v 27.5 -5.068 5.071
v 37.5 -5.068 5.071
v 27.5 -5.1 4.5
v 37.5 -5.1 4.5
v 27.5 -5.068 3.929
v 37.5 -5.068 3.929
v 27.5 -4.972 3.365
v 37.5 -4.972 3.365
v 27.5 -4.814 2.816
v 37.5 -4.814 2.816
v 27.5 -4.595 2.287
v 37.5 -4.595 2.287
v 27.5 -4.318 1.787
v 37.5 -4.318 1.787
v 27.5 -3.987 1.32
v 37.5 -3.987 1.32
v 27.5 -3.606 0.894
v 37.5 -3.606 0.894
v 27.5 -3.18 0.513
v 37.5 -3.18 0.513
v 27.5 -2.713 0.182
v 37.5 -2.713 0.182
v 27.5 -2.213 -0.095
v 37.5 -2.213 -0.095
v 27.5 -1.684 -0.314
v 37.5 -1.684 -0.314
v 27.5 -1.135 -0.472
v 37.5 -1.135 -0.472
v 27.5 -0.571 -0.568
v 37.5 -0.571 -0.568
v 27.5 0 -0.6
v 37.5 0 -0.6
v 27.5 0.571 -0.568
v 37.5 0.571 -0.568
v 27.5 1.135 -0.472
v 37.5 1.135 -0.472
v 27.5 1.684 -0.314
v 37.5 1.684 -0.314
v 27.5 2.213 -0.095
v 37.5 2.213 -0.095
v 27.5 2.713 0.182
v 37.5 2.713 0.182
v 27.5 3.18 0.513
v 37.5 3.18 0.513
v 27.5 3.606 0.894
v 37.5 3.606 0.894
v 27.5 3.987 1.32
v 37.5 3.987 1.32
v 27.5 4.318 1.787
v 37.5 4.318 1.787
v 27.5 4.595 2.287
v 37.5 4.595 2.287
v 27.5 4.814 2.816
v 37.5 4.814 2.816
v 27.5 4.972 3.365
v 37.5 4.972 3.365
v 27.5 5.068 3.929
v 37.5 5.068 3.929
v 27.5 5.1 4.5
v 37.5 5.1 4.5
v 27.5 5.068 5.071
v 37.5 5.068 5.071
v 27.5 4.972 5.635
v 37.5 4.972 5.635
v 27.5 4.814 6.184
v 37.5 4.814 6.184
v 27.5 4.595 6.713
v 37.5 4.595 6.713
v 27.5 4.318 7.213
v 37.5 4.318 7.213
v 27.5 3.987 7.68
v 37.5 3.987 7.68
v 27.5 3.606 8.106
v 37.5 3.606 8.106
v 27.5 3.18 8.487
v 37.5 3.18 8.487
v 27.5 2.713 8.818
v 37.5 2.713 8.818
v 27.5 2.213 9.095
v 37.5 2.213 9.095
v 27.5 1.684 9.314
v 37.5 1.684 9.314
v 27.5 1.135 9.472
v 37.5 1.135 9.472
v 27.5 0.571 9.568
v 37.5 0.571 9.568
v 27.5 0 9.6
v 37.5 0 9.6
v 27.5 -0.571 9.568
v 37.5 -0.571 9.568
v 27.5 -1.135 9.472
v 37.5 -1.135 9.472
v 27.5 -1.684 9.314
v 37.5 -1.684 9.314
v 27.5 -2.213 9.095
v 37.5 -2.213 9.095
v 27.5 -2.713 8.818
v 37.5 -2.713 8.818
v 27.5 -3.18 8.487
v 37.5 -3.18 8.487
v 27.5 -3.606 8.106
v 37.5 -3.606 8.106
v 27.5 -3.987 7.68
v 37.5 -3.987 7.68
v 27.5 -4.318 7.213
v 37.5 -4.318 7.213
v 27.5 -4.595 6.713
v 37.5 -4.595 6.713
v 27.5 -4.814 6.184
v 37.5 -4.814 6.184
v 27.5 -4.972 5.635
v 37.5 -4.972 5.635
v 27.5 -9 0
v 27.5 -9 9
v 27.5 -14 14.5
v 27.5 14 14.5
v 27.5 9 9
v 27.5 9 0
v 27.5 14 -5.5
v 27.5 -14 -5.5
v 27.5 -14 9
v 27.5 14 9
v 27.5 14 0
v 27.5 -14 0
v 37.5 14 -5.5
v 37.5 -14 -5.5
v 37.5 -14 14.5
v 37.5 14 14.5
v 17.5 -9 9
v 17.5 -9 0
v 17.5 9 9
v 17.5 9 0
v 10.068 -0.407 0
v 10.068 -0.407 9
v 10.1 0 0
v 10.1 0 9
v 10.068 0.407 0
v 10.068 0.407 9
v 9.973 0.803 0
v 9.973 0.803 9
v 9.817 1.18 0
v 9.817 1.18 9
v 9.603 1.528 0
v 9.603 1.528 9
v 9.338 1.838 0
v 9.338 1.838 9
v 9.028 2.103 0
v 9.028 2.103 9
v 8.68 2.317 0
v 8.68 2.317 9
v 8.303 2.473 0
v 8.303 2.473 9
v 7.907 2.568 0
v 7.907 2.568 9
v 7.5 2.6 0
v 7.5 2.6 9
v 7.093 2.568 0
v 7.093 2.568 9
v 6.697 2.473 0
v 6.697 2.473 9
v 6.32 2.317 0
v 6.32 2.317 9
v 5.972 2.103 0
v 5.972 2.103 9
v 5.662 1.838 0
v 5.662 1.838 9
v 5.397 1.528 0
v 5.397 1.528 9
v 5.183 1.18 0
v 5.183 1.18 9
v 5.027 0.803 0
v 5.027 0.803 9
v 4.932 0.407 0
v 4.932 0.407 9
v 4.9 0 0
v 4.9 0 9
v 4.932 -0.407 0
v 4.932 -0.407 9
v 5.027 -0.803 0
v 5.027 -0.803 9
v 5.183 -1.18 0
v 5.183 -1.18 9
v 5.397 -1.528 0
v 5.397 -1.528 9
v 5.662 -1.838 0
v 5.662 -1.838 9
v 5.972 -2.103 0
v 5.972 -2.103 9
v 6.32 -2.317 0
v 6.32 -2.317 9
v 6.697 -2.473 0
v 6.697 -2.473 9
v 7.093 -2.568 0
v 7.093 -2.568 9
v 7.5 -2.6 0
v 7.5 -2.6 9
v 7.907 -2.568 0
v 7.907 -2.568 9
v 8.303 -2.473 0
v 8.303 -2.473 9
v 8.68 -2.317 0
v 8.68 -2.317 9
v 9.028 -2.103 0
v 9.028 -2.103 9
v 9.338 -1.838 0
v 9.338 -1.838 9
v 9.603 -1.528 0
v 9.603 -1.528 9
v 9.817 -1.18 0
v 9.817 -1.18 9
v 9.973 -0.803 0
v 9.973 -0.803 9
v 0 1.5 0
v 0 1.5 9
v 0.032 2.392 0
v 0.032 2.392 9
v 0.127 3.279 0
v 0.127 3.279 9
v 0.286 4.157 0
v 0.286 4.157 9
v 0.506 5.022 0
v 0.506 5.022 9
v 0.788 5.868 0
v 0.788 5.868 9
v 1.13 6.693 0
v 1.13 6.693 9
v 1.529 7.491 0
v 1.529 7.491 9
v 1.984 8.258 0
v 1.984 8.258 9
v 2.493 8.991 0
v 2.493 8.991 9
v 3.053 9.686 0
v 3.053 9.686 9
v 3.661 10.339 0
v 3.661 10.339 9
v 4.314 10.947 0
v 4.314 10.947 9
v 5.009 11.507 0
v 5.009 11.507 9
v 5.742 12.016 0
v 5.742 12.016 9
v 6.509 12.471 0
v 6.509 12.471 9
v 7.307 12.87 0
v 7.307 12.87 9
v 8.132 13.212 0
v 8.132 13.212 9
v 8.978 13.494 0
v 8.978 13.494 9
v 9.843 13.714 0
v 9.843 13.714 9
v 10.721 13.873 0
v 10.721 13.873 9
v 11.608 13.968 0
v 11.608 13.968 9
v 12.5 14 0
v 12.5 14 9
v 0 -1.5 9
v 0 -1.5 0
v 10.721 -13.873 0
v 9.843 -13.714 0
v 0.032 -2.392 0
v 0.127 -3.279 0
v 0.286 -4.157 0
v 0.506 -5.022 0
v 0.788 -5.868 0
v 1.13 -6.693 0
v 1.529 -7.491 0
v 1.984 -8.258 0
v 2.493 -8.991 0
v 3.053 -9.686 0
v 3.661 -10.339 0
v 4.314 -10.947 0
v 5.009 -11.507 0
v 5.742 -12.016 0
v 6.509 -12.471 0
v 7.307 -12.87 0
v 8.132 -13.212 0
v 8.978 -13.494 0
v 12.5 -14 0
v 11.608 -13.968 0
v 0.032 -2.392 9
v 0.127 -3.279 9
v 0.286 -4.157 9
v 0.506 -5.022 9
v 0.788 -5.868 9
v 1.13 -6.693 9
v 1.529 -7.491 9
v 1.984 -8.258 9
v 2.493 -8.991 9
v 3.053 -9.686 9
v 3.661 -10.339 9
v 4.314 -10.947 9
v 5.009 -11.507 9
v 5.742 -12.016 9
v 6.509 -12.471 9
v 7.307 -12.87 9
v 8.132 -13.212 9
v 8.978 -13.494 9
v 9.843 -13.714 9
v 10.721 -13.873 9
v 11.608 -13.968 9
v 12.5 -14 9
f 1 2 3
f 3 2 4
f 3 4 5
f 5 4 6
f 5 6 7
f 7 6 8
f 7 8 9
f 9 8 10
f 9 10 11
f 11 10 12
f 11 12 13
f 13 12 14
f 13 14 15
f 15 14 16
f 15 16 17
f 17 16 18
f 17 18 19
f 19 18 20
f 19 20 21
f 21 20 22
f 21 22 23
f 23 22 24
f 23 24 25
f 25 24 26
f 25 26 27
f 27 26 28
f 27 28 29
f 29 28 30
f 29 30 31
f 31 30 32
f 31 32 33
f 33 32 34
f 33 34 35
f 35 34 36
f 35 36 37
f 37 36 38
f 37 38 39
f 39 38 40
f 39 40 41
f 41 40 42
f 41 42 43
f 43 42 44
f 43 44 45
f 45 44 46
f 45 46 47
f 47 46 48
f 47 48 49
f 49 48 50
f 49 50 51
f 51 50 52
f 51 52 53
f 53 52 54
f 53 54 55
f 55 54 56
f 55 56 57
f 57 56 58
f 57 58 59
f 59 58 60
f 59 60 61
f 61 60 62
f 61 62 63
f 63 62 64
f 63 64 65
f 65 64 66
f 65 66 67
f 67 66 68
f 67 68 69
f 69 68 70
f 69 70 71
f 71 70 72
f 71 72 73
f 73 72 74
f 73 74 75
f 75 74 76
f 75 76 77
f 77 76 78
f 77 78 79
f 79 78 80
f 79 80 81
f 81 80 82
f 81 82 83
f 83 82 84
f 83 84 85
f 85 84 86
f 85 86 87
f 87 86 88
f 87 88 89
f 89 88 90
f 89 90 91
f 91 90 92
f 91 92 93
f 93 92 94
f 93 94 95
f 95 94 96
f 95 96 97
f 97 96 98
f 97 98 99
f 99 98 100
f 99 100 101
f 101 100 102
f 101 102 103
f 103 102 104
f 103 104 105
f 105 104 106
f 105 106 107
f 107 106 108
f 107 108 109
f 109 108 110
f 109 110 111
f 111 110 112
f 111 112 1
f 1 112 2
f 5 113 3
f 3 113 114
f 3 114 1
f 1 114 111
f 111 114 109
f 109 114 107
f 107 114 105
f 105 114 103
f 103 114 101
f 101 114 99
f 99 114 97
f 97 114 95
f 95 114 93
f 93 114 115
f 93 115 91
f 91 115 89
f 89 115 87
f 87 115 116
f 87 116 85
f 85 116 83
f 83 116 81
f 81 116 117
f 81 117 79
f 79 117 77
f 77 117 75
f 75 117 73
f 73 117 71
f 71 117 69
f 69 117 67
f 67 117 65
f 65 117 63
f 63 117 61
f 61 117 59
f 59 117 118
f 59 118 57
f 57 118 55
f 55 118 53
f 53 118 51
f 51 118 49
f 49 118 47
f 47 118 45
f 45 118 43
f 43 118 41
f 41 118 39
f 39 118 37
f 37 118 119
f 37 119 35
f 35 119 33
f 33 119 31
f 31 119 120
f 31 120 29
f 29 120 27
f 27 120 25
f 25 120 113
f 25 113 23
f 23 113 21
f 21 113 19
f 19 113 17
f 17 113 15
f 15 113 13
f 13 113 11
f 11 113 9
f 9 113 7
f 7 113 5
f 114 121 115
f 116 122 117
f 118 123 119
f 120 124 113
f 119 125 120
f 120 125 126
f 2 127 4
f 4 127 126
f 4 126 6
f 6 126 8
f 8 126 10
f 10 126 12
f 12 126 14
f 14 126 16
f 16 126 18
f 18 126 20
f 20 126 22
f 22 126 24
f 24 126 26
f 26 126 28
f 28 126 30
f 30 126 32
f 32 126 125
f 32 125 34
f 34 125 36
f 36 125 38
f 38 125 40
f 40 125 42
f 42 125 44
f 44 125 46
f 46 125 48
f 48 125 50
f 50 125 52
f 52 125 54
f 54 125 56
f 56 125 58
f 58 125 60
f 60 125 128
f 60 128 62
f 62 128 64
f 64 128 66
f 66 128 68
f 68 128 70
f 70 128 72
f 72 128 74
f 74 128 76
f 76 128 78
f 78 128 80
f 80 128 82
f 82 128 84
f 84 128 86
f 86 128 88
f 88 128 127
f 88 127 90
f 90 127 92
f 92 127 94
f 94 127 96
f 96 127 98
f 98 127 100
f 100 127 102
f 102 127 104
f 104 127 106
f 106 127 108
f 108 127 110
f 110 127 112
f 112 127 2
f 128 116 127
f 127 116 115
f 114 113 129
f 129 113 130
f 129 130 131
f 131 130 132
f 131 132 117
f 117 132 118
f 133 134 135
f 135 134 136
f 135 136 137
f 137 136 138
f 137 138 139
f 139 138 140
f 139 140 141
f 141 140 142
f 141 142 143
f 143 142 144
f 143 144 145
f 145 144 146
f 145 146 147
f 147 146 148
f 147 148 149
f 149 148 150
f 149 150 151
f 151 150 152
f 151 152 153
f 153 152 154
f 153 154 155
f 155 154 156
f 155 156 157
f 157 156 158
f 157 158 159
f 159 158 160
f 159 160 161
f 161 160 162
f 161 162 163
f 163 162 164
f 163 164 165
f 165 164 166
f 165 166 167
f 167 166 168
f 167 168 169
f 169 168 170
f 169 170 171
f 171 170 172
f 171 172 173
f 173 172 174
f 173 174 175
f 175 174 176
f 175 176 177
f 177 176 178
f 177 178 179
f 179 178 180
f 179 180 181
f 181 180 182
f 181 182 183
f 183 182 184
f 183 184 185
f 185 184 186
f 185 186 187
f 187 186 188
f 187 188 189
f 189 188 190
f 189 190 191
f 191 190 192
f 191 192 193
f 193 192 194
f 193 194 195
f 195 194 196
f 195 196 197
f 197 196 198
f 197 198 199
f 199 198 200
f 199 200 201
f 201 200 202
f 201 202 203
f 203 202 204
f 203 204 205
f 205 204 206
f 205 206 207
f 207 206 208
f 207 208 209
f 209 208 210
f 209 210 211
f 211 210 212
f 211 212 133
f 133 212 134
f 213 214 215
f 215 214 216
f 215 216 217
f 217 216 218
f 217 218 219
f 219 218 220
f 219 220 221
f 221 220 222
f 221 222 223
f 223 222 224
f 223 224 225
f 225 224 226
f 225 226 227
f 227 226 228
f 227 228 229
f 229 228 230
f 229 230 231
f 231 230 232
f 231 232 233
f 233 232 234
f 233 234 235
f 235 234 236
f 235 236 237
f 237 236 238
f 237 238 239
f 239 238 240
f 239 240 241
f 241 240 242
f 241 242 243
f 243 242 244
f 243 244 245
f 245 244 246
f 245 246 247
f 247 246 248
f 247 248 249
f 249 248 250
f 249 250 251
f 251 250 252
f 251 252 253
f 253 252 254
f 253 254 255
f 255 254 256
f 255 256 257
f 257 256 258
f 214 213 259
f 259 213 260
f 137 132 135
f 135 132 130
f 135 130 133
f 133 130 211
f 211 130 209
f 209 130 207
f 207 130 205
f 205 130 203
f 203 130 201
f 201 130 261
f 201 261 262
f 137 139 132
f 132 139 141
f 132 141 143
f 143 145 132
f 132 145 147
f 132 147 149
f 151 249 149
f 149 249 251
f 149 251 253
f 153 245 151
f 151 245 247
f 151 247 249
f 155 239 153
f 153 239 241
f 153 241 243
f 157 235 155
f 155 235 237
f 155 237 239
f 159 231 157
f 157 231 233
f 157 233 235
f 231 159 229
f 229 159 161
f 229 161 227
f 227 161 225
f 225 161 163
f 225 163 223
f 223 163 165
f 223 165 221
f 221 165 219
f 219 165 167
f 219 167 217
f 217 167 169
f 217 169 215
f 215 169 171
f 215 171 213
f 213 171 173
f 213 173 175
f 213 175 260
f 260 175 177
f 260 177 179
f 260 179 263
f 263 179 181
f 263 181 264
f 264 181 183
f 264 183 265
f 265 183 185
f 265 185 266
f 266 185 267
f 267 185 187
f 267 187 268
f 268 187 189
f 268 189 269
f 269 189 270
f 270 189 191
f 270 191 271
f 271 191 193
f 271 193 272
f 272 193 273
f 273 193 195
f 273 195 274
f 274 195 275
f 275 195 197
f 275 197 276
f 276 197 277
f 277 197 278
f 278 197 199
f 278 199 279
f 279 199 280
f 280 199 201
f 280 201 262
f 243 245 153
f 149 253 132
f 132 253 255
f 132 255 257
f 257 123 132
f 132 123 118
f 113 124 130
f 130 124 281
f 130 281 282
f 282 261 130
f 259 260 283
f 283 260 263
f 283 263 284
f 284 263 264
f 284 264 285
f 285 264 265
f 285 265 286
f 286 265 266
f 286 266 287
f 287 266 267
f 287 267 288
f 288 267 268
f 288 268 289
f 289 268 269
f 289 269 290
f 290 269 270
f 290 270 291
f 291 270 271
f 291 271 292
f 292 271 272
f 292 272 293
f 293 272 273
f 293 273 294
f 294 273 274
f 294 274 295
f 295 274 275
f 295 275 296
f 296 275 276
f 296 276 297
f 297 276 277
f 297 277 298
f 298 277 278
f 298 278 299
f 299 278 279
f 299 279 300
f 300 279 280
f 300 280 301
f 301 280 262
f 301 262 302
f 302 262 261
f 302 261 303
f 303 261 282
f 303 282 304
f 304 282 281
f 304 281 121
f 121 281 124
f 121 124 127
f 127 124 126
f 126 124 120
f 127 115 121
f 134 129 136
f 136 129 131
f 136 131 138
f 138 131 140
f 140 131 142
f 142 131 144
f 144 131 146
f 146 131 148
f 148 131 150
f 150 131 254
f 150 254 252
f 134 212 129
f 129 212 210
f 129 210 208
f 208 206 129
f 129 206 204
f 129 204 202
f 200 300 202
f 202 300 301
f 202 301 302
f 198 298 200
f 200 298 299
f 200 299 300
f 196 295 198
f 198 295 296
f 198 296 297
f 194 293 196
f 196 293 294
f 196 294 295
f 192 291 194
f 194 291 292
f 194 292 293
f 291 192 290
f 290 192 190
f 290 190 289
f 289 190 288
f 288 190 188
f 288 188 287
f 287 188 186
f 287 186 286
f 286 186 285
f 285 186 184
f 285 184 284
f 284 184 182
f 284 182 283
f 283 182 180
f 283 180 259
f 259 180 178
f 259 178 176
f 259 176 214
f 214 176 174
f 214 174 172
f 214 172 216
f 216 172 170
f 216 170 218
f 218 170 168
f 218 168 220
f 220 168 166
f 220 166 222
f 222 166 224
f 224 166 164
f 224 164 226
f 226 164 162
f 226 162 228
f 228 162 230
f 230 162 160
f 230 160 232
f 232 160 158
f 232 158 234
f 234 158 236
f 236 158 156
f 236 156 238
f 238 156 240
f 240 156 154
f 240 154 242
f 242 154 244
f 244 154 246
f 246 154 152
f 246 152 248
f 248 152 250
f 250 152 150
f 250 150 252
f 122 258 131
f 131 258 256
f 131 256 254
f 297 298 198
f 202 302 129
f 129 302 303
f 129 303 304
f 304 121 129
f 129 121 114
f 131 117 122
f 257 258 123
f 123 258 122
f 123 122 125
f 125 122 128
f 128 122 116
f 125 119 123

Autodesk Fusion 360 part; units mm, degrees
sketch "Sketch1" plane through (0, 0, 0) normal (0, 1, 0) x (1, 0, 0)
  line L0 (0, 0) -> (15, 0)
  line L1 (15, 0) -> (15, -9)
  line L2 (15, -9) -> (0, -9)
  line L3 (0, -9) -> (0, 0)
  line L4 (15, -9) -> (17.5, -9)
  line L5 (17.5, 0) -> (15, 0)
  line L6 (17.5, -9) -> (17.5, 0)
  line L7 (17.5, -9) -> (27.5, -9)
  line L8 (27.5, -9) -> (27.5, -14.5)
  line L9 (27.5, -14.5) -> (37.5, -14.5)
  line L10 (37.5, -14.5) -> (37.5, 5.5)
  line L11 (37.5, 5.5) -> (27.5, 5.5)
  line L12 (27.5, 5.5) -> (27.5, 0)
  line L13 (27.5, 0) -> (17.5, 0)
  line L14 (27.5, -9) -> (27.5, 0)
  dimension "d1" = 15
  dimension "d2" = 9
  dimension "d3" = 15
  dimension "d55" = 10
  dimension "d56" = 5.5
  dimension "d57" = 10
  dimension "d58" = 20
extrude "Extrude2" add sketch "Sketch1" along normal mid plane 28 contours L0 L1 L2 L3 | L1 L4 L5 L6
fillet "Fillet1" radius 12.5 2 edges at (0, -14, 4.5) (0, 14, 4.5)
sketch "Sketch2" plane through (0, 0, 9) normal (0, 0, 1) x (-1, 0, 0)
  line L0 (-12.5, 14) -> (-17.5, 14)
  line L1 (-17.5, -14) -> (-12.5, -14)
  line L2 (0, 0) -> (-7.5, 0) construction
  circle A0 centre (-7.5, 0) radius 2.6
  arc A1 (-12.5, -14) -> (0, -1.5) centre (-12.5, -1.5) ccw
  line L3 (-17.5, 14) -> (-17.5, -14)
  line L4 (0, -1.5) -> (0, 1.5)
  arc A2 (0, 1.5) -> (-12.5, 14) centre (-12.5, 1.5) ccw
  dimension "d28" = 7.5
  dimension "d29" = 5.2
extrude "Extrude4" cut sketch "Sketch2" against normal through all contours A0
extrude "Extrude9" add sketch "Sketch1" against normal blind 5 from surface at 14 contours L6 L7 L13 L14
extrude "Extrude10" add sketch "Sketch1" along normal blind 5 from surface at -14 contours L6 L7 L13 L14
extrude "Extrude11" add sketch "Sketch1" along normal mid plane 28 contours L8 L9 L10 L11 L12 L14
sketch "Sketch4" plane through (37.5, 0, 0) normal (1, 0, 0) x (0, 1, 0)
  line L0 (-14, -5.5) -> (14, -5.5)
  line L1 (14, -5.5) -> (14, 14.5)
  line L2 (14, 14.5) -> (-14, 14.5)
  line L3 (-14, 14.5) -> (-14, -5.5)
  line L4 (0, 14.5) -> (0, 4.5) construction
  line L5 (0, 4.5) -> (-14, 4.5) construction
  circle A0 centre (0, 4.5) radius 5.1
  dimension "d67" = 10
  dimension "d68" = 10.2
extrude "Extrude12" cut sketch "Sketch4" against normal blind 10 contours A0
equation "d27 = ( 25 / 2 ) * 1 mm"
equation "d56 = ( ( 20 - 9 ) / 2 ) * 1 mm"
equation "d59 = ( 28 / 2 ) * 1 mm"
equation "d62 = ( -28 / 2 ) * 1 mm"
equation "d67 = ( 20 / 2 ) * 1 mm"
